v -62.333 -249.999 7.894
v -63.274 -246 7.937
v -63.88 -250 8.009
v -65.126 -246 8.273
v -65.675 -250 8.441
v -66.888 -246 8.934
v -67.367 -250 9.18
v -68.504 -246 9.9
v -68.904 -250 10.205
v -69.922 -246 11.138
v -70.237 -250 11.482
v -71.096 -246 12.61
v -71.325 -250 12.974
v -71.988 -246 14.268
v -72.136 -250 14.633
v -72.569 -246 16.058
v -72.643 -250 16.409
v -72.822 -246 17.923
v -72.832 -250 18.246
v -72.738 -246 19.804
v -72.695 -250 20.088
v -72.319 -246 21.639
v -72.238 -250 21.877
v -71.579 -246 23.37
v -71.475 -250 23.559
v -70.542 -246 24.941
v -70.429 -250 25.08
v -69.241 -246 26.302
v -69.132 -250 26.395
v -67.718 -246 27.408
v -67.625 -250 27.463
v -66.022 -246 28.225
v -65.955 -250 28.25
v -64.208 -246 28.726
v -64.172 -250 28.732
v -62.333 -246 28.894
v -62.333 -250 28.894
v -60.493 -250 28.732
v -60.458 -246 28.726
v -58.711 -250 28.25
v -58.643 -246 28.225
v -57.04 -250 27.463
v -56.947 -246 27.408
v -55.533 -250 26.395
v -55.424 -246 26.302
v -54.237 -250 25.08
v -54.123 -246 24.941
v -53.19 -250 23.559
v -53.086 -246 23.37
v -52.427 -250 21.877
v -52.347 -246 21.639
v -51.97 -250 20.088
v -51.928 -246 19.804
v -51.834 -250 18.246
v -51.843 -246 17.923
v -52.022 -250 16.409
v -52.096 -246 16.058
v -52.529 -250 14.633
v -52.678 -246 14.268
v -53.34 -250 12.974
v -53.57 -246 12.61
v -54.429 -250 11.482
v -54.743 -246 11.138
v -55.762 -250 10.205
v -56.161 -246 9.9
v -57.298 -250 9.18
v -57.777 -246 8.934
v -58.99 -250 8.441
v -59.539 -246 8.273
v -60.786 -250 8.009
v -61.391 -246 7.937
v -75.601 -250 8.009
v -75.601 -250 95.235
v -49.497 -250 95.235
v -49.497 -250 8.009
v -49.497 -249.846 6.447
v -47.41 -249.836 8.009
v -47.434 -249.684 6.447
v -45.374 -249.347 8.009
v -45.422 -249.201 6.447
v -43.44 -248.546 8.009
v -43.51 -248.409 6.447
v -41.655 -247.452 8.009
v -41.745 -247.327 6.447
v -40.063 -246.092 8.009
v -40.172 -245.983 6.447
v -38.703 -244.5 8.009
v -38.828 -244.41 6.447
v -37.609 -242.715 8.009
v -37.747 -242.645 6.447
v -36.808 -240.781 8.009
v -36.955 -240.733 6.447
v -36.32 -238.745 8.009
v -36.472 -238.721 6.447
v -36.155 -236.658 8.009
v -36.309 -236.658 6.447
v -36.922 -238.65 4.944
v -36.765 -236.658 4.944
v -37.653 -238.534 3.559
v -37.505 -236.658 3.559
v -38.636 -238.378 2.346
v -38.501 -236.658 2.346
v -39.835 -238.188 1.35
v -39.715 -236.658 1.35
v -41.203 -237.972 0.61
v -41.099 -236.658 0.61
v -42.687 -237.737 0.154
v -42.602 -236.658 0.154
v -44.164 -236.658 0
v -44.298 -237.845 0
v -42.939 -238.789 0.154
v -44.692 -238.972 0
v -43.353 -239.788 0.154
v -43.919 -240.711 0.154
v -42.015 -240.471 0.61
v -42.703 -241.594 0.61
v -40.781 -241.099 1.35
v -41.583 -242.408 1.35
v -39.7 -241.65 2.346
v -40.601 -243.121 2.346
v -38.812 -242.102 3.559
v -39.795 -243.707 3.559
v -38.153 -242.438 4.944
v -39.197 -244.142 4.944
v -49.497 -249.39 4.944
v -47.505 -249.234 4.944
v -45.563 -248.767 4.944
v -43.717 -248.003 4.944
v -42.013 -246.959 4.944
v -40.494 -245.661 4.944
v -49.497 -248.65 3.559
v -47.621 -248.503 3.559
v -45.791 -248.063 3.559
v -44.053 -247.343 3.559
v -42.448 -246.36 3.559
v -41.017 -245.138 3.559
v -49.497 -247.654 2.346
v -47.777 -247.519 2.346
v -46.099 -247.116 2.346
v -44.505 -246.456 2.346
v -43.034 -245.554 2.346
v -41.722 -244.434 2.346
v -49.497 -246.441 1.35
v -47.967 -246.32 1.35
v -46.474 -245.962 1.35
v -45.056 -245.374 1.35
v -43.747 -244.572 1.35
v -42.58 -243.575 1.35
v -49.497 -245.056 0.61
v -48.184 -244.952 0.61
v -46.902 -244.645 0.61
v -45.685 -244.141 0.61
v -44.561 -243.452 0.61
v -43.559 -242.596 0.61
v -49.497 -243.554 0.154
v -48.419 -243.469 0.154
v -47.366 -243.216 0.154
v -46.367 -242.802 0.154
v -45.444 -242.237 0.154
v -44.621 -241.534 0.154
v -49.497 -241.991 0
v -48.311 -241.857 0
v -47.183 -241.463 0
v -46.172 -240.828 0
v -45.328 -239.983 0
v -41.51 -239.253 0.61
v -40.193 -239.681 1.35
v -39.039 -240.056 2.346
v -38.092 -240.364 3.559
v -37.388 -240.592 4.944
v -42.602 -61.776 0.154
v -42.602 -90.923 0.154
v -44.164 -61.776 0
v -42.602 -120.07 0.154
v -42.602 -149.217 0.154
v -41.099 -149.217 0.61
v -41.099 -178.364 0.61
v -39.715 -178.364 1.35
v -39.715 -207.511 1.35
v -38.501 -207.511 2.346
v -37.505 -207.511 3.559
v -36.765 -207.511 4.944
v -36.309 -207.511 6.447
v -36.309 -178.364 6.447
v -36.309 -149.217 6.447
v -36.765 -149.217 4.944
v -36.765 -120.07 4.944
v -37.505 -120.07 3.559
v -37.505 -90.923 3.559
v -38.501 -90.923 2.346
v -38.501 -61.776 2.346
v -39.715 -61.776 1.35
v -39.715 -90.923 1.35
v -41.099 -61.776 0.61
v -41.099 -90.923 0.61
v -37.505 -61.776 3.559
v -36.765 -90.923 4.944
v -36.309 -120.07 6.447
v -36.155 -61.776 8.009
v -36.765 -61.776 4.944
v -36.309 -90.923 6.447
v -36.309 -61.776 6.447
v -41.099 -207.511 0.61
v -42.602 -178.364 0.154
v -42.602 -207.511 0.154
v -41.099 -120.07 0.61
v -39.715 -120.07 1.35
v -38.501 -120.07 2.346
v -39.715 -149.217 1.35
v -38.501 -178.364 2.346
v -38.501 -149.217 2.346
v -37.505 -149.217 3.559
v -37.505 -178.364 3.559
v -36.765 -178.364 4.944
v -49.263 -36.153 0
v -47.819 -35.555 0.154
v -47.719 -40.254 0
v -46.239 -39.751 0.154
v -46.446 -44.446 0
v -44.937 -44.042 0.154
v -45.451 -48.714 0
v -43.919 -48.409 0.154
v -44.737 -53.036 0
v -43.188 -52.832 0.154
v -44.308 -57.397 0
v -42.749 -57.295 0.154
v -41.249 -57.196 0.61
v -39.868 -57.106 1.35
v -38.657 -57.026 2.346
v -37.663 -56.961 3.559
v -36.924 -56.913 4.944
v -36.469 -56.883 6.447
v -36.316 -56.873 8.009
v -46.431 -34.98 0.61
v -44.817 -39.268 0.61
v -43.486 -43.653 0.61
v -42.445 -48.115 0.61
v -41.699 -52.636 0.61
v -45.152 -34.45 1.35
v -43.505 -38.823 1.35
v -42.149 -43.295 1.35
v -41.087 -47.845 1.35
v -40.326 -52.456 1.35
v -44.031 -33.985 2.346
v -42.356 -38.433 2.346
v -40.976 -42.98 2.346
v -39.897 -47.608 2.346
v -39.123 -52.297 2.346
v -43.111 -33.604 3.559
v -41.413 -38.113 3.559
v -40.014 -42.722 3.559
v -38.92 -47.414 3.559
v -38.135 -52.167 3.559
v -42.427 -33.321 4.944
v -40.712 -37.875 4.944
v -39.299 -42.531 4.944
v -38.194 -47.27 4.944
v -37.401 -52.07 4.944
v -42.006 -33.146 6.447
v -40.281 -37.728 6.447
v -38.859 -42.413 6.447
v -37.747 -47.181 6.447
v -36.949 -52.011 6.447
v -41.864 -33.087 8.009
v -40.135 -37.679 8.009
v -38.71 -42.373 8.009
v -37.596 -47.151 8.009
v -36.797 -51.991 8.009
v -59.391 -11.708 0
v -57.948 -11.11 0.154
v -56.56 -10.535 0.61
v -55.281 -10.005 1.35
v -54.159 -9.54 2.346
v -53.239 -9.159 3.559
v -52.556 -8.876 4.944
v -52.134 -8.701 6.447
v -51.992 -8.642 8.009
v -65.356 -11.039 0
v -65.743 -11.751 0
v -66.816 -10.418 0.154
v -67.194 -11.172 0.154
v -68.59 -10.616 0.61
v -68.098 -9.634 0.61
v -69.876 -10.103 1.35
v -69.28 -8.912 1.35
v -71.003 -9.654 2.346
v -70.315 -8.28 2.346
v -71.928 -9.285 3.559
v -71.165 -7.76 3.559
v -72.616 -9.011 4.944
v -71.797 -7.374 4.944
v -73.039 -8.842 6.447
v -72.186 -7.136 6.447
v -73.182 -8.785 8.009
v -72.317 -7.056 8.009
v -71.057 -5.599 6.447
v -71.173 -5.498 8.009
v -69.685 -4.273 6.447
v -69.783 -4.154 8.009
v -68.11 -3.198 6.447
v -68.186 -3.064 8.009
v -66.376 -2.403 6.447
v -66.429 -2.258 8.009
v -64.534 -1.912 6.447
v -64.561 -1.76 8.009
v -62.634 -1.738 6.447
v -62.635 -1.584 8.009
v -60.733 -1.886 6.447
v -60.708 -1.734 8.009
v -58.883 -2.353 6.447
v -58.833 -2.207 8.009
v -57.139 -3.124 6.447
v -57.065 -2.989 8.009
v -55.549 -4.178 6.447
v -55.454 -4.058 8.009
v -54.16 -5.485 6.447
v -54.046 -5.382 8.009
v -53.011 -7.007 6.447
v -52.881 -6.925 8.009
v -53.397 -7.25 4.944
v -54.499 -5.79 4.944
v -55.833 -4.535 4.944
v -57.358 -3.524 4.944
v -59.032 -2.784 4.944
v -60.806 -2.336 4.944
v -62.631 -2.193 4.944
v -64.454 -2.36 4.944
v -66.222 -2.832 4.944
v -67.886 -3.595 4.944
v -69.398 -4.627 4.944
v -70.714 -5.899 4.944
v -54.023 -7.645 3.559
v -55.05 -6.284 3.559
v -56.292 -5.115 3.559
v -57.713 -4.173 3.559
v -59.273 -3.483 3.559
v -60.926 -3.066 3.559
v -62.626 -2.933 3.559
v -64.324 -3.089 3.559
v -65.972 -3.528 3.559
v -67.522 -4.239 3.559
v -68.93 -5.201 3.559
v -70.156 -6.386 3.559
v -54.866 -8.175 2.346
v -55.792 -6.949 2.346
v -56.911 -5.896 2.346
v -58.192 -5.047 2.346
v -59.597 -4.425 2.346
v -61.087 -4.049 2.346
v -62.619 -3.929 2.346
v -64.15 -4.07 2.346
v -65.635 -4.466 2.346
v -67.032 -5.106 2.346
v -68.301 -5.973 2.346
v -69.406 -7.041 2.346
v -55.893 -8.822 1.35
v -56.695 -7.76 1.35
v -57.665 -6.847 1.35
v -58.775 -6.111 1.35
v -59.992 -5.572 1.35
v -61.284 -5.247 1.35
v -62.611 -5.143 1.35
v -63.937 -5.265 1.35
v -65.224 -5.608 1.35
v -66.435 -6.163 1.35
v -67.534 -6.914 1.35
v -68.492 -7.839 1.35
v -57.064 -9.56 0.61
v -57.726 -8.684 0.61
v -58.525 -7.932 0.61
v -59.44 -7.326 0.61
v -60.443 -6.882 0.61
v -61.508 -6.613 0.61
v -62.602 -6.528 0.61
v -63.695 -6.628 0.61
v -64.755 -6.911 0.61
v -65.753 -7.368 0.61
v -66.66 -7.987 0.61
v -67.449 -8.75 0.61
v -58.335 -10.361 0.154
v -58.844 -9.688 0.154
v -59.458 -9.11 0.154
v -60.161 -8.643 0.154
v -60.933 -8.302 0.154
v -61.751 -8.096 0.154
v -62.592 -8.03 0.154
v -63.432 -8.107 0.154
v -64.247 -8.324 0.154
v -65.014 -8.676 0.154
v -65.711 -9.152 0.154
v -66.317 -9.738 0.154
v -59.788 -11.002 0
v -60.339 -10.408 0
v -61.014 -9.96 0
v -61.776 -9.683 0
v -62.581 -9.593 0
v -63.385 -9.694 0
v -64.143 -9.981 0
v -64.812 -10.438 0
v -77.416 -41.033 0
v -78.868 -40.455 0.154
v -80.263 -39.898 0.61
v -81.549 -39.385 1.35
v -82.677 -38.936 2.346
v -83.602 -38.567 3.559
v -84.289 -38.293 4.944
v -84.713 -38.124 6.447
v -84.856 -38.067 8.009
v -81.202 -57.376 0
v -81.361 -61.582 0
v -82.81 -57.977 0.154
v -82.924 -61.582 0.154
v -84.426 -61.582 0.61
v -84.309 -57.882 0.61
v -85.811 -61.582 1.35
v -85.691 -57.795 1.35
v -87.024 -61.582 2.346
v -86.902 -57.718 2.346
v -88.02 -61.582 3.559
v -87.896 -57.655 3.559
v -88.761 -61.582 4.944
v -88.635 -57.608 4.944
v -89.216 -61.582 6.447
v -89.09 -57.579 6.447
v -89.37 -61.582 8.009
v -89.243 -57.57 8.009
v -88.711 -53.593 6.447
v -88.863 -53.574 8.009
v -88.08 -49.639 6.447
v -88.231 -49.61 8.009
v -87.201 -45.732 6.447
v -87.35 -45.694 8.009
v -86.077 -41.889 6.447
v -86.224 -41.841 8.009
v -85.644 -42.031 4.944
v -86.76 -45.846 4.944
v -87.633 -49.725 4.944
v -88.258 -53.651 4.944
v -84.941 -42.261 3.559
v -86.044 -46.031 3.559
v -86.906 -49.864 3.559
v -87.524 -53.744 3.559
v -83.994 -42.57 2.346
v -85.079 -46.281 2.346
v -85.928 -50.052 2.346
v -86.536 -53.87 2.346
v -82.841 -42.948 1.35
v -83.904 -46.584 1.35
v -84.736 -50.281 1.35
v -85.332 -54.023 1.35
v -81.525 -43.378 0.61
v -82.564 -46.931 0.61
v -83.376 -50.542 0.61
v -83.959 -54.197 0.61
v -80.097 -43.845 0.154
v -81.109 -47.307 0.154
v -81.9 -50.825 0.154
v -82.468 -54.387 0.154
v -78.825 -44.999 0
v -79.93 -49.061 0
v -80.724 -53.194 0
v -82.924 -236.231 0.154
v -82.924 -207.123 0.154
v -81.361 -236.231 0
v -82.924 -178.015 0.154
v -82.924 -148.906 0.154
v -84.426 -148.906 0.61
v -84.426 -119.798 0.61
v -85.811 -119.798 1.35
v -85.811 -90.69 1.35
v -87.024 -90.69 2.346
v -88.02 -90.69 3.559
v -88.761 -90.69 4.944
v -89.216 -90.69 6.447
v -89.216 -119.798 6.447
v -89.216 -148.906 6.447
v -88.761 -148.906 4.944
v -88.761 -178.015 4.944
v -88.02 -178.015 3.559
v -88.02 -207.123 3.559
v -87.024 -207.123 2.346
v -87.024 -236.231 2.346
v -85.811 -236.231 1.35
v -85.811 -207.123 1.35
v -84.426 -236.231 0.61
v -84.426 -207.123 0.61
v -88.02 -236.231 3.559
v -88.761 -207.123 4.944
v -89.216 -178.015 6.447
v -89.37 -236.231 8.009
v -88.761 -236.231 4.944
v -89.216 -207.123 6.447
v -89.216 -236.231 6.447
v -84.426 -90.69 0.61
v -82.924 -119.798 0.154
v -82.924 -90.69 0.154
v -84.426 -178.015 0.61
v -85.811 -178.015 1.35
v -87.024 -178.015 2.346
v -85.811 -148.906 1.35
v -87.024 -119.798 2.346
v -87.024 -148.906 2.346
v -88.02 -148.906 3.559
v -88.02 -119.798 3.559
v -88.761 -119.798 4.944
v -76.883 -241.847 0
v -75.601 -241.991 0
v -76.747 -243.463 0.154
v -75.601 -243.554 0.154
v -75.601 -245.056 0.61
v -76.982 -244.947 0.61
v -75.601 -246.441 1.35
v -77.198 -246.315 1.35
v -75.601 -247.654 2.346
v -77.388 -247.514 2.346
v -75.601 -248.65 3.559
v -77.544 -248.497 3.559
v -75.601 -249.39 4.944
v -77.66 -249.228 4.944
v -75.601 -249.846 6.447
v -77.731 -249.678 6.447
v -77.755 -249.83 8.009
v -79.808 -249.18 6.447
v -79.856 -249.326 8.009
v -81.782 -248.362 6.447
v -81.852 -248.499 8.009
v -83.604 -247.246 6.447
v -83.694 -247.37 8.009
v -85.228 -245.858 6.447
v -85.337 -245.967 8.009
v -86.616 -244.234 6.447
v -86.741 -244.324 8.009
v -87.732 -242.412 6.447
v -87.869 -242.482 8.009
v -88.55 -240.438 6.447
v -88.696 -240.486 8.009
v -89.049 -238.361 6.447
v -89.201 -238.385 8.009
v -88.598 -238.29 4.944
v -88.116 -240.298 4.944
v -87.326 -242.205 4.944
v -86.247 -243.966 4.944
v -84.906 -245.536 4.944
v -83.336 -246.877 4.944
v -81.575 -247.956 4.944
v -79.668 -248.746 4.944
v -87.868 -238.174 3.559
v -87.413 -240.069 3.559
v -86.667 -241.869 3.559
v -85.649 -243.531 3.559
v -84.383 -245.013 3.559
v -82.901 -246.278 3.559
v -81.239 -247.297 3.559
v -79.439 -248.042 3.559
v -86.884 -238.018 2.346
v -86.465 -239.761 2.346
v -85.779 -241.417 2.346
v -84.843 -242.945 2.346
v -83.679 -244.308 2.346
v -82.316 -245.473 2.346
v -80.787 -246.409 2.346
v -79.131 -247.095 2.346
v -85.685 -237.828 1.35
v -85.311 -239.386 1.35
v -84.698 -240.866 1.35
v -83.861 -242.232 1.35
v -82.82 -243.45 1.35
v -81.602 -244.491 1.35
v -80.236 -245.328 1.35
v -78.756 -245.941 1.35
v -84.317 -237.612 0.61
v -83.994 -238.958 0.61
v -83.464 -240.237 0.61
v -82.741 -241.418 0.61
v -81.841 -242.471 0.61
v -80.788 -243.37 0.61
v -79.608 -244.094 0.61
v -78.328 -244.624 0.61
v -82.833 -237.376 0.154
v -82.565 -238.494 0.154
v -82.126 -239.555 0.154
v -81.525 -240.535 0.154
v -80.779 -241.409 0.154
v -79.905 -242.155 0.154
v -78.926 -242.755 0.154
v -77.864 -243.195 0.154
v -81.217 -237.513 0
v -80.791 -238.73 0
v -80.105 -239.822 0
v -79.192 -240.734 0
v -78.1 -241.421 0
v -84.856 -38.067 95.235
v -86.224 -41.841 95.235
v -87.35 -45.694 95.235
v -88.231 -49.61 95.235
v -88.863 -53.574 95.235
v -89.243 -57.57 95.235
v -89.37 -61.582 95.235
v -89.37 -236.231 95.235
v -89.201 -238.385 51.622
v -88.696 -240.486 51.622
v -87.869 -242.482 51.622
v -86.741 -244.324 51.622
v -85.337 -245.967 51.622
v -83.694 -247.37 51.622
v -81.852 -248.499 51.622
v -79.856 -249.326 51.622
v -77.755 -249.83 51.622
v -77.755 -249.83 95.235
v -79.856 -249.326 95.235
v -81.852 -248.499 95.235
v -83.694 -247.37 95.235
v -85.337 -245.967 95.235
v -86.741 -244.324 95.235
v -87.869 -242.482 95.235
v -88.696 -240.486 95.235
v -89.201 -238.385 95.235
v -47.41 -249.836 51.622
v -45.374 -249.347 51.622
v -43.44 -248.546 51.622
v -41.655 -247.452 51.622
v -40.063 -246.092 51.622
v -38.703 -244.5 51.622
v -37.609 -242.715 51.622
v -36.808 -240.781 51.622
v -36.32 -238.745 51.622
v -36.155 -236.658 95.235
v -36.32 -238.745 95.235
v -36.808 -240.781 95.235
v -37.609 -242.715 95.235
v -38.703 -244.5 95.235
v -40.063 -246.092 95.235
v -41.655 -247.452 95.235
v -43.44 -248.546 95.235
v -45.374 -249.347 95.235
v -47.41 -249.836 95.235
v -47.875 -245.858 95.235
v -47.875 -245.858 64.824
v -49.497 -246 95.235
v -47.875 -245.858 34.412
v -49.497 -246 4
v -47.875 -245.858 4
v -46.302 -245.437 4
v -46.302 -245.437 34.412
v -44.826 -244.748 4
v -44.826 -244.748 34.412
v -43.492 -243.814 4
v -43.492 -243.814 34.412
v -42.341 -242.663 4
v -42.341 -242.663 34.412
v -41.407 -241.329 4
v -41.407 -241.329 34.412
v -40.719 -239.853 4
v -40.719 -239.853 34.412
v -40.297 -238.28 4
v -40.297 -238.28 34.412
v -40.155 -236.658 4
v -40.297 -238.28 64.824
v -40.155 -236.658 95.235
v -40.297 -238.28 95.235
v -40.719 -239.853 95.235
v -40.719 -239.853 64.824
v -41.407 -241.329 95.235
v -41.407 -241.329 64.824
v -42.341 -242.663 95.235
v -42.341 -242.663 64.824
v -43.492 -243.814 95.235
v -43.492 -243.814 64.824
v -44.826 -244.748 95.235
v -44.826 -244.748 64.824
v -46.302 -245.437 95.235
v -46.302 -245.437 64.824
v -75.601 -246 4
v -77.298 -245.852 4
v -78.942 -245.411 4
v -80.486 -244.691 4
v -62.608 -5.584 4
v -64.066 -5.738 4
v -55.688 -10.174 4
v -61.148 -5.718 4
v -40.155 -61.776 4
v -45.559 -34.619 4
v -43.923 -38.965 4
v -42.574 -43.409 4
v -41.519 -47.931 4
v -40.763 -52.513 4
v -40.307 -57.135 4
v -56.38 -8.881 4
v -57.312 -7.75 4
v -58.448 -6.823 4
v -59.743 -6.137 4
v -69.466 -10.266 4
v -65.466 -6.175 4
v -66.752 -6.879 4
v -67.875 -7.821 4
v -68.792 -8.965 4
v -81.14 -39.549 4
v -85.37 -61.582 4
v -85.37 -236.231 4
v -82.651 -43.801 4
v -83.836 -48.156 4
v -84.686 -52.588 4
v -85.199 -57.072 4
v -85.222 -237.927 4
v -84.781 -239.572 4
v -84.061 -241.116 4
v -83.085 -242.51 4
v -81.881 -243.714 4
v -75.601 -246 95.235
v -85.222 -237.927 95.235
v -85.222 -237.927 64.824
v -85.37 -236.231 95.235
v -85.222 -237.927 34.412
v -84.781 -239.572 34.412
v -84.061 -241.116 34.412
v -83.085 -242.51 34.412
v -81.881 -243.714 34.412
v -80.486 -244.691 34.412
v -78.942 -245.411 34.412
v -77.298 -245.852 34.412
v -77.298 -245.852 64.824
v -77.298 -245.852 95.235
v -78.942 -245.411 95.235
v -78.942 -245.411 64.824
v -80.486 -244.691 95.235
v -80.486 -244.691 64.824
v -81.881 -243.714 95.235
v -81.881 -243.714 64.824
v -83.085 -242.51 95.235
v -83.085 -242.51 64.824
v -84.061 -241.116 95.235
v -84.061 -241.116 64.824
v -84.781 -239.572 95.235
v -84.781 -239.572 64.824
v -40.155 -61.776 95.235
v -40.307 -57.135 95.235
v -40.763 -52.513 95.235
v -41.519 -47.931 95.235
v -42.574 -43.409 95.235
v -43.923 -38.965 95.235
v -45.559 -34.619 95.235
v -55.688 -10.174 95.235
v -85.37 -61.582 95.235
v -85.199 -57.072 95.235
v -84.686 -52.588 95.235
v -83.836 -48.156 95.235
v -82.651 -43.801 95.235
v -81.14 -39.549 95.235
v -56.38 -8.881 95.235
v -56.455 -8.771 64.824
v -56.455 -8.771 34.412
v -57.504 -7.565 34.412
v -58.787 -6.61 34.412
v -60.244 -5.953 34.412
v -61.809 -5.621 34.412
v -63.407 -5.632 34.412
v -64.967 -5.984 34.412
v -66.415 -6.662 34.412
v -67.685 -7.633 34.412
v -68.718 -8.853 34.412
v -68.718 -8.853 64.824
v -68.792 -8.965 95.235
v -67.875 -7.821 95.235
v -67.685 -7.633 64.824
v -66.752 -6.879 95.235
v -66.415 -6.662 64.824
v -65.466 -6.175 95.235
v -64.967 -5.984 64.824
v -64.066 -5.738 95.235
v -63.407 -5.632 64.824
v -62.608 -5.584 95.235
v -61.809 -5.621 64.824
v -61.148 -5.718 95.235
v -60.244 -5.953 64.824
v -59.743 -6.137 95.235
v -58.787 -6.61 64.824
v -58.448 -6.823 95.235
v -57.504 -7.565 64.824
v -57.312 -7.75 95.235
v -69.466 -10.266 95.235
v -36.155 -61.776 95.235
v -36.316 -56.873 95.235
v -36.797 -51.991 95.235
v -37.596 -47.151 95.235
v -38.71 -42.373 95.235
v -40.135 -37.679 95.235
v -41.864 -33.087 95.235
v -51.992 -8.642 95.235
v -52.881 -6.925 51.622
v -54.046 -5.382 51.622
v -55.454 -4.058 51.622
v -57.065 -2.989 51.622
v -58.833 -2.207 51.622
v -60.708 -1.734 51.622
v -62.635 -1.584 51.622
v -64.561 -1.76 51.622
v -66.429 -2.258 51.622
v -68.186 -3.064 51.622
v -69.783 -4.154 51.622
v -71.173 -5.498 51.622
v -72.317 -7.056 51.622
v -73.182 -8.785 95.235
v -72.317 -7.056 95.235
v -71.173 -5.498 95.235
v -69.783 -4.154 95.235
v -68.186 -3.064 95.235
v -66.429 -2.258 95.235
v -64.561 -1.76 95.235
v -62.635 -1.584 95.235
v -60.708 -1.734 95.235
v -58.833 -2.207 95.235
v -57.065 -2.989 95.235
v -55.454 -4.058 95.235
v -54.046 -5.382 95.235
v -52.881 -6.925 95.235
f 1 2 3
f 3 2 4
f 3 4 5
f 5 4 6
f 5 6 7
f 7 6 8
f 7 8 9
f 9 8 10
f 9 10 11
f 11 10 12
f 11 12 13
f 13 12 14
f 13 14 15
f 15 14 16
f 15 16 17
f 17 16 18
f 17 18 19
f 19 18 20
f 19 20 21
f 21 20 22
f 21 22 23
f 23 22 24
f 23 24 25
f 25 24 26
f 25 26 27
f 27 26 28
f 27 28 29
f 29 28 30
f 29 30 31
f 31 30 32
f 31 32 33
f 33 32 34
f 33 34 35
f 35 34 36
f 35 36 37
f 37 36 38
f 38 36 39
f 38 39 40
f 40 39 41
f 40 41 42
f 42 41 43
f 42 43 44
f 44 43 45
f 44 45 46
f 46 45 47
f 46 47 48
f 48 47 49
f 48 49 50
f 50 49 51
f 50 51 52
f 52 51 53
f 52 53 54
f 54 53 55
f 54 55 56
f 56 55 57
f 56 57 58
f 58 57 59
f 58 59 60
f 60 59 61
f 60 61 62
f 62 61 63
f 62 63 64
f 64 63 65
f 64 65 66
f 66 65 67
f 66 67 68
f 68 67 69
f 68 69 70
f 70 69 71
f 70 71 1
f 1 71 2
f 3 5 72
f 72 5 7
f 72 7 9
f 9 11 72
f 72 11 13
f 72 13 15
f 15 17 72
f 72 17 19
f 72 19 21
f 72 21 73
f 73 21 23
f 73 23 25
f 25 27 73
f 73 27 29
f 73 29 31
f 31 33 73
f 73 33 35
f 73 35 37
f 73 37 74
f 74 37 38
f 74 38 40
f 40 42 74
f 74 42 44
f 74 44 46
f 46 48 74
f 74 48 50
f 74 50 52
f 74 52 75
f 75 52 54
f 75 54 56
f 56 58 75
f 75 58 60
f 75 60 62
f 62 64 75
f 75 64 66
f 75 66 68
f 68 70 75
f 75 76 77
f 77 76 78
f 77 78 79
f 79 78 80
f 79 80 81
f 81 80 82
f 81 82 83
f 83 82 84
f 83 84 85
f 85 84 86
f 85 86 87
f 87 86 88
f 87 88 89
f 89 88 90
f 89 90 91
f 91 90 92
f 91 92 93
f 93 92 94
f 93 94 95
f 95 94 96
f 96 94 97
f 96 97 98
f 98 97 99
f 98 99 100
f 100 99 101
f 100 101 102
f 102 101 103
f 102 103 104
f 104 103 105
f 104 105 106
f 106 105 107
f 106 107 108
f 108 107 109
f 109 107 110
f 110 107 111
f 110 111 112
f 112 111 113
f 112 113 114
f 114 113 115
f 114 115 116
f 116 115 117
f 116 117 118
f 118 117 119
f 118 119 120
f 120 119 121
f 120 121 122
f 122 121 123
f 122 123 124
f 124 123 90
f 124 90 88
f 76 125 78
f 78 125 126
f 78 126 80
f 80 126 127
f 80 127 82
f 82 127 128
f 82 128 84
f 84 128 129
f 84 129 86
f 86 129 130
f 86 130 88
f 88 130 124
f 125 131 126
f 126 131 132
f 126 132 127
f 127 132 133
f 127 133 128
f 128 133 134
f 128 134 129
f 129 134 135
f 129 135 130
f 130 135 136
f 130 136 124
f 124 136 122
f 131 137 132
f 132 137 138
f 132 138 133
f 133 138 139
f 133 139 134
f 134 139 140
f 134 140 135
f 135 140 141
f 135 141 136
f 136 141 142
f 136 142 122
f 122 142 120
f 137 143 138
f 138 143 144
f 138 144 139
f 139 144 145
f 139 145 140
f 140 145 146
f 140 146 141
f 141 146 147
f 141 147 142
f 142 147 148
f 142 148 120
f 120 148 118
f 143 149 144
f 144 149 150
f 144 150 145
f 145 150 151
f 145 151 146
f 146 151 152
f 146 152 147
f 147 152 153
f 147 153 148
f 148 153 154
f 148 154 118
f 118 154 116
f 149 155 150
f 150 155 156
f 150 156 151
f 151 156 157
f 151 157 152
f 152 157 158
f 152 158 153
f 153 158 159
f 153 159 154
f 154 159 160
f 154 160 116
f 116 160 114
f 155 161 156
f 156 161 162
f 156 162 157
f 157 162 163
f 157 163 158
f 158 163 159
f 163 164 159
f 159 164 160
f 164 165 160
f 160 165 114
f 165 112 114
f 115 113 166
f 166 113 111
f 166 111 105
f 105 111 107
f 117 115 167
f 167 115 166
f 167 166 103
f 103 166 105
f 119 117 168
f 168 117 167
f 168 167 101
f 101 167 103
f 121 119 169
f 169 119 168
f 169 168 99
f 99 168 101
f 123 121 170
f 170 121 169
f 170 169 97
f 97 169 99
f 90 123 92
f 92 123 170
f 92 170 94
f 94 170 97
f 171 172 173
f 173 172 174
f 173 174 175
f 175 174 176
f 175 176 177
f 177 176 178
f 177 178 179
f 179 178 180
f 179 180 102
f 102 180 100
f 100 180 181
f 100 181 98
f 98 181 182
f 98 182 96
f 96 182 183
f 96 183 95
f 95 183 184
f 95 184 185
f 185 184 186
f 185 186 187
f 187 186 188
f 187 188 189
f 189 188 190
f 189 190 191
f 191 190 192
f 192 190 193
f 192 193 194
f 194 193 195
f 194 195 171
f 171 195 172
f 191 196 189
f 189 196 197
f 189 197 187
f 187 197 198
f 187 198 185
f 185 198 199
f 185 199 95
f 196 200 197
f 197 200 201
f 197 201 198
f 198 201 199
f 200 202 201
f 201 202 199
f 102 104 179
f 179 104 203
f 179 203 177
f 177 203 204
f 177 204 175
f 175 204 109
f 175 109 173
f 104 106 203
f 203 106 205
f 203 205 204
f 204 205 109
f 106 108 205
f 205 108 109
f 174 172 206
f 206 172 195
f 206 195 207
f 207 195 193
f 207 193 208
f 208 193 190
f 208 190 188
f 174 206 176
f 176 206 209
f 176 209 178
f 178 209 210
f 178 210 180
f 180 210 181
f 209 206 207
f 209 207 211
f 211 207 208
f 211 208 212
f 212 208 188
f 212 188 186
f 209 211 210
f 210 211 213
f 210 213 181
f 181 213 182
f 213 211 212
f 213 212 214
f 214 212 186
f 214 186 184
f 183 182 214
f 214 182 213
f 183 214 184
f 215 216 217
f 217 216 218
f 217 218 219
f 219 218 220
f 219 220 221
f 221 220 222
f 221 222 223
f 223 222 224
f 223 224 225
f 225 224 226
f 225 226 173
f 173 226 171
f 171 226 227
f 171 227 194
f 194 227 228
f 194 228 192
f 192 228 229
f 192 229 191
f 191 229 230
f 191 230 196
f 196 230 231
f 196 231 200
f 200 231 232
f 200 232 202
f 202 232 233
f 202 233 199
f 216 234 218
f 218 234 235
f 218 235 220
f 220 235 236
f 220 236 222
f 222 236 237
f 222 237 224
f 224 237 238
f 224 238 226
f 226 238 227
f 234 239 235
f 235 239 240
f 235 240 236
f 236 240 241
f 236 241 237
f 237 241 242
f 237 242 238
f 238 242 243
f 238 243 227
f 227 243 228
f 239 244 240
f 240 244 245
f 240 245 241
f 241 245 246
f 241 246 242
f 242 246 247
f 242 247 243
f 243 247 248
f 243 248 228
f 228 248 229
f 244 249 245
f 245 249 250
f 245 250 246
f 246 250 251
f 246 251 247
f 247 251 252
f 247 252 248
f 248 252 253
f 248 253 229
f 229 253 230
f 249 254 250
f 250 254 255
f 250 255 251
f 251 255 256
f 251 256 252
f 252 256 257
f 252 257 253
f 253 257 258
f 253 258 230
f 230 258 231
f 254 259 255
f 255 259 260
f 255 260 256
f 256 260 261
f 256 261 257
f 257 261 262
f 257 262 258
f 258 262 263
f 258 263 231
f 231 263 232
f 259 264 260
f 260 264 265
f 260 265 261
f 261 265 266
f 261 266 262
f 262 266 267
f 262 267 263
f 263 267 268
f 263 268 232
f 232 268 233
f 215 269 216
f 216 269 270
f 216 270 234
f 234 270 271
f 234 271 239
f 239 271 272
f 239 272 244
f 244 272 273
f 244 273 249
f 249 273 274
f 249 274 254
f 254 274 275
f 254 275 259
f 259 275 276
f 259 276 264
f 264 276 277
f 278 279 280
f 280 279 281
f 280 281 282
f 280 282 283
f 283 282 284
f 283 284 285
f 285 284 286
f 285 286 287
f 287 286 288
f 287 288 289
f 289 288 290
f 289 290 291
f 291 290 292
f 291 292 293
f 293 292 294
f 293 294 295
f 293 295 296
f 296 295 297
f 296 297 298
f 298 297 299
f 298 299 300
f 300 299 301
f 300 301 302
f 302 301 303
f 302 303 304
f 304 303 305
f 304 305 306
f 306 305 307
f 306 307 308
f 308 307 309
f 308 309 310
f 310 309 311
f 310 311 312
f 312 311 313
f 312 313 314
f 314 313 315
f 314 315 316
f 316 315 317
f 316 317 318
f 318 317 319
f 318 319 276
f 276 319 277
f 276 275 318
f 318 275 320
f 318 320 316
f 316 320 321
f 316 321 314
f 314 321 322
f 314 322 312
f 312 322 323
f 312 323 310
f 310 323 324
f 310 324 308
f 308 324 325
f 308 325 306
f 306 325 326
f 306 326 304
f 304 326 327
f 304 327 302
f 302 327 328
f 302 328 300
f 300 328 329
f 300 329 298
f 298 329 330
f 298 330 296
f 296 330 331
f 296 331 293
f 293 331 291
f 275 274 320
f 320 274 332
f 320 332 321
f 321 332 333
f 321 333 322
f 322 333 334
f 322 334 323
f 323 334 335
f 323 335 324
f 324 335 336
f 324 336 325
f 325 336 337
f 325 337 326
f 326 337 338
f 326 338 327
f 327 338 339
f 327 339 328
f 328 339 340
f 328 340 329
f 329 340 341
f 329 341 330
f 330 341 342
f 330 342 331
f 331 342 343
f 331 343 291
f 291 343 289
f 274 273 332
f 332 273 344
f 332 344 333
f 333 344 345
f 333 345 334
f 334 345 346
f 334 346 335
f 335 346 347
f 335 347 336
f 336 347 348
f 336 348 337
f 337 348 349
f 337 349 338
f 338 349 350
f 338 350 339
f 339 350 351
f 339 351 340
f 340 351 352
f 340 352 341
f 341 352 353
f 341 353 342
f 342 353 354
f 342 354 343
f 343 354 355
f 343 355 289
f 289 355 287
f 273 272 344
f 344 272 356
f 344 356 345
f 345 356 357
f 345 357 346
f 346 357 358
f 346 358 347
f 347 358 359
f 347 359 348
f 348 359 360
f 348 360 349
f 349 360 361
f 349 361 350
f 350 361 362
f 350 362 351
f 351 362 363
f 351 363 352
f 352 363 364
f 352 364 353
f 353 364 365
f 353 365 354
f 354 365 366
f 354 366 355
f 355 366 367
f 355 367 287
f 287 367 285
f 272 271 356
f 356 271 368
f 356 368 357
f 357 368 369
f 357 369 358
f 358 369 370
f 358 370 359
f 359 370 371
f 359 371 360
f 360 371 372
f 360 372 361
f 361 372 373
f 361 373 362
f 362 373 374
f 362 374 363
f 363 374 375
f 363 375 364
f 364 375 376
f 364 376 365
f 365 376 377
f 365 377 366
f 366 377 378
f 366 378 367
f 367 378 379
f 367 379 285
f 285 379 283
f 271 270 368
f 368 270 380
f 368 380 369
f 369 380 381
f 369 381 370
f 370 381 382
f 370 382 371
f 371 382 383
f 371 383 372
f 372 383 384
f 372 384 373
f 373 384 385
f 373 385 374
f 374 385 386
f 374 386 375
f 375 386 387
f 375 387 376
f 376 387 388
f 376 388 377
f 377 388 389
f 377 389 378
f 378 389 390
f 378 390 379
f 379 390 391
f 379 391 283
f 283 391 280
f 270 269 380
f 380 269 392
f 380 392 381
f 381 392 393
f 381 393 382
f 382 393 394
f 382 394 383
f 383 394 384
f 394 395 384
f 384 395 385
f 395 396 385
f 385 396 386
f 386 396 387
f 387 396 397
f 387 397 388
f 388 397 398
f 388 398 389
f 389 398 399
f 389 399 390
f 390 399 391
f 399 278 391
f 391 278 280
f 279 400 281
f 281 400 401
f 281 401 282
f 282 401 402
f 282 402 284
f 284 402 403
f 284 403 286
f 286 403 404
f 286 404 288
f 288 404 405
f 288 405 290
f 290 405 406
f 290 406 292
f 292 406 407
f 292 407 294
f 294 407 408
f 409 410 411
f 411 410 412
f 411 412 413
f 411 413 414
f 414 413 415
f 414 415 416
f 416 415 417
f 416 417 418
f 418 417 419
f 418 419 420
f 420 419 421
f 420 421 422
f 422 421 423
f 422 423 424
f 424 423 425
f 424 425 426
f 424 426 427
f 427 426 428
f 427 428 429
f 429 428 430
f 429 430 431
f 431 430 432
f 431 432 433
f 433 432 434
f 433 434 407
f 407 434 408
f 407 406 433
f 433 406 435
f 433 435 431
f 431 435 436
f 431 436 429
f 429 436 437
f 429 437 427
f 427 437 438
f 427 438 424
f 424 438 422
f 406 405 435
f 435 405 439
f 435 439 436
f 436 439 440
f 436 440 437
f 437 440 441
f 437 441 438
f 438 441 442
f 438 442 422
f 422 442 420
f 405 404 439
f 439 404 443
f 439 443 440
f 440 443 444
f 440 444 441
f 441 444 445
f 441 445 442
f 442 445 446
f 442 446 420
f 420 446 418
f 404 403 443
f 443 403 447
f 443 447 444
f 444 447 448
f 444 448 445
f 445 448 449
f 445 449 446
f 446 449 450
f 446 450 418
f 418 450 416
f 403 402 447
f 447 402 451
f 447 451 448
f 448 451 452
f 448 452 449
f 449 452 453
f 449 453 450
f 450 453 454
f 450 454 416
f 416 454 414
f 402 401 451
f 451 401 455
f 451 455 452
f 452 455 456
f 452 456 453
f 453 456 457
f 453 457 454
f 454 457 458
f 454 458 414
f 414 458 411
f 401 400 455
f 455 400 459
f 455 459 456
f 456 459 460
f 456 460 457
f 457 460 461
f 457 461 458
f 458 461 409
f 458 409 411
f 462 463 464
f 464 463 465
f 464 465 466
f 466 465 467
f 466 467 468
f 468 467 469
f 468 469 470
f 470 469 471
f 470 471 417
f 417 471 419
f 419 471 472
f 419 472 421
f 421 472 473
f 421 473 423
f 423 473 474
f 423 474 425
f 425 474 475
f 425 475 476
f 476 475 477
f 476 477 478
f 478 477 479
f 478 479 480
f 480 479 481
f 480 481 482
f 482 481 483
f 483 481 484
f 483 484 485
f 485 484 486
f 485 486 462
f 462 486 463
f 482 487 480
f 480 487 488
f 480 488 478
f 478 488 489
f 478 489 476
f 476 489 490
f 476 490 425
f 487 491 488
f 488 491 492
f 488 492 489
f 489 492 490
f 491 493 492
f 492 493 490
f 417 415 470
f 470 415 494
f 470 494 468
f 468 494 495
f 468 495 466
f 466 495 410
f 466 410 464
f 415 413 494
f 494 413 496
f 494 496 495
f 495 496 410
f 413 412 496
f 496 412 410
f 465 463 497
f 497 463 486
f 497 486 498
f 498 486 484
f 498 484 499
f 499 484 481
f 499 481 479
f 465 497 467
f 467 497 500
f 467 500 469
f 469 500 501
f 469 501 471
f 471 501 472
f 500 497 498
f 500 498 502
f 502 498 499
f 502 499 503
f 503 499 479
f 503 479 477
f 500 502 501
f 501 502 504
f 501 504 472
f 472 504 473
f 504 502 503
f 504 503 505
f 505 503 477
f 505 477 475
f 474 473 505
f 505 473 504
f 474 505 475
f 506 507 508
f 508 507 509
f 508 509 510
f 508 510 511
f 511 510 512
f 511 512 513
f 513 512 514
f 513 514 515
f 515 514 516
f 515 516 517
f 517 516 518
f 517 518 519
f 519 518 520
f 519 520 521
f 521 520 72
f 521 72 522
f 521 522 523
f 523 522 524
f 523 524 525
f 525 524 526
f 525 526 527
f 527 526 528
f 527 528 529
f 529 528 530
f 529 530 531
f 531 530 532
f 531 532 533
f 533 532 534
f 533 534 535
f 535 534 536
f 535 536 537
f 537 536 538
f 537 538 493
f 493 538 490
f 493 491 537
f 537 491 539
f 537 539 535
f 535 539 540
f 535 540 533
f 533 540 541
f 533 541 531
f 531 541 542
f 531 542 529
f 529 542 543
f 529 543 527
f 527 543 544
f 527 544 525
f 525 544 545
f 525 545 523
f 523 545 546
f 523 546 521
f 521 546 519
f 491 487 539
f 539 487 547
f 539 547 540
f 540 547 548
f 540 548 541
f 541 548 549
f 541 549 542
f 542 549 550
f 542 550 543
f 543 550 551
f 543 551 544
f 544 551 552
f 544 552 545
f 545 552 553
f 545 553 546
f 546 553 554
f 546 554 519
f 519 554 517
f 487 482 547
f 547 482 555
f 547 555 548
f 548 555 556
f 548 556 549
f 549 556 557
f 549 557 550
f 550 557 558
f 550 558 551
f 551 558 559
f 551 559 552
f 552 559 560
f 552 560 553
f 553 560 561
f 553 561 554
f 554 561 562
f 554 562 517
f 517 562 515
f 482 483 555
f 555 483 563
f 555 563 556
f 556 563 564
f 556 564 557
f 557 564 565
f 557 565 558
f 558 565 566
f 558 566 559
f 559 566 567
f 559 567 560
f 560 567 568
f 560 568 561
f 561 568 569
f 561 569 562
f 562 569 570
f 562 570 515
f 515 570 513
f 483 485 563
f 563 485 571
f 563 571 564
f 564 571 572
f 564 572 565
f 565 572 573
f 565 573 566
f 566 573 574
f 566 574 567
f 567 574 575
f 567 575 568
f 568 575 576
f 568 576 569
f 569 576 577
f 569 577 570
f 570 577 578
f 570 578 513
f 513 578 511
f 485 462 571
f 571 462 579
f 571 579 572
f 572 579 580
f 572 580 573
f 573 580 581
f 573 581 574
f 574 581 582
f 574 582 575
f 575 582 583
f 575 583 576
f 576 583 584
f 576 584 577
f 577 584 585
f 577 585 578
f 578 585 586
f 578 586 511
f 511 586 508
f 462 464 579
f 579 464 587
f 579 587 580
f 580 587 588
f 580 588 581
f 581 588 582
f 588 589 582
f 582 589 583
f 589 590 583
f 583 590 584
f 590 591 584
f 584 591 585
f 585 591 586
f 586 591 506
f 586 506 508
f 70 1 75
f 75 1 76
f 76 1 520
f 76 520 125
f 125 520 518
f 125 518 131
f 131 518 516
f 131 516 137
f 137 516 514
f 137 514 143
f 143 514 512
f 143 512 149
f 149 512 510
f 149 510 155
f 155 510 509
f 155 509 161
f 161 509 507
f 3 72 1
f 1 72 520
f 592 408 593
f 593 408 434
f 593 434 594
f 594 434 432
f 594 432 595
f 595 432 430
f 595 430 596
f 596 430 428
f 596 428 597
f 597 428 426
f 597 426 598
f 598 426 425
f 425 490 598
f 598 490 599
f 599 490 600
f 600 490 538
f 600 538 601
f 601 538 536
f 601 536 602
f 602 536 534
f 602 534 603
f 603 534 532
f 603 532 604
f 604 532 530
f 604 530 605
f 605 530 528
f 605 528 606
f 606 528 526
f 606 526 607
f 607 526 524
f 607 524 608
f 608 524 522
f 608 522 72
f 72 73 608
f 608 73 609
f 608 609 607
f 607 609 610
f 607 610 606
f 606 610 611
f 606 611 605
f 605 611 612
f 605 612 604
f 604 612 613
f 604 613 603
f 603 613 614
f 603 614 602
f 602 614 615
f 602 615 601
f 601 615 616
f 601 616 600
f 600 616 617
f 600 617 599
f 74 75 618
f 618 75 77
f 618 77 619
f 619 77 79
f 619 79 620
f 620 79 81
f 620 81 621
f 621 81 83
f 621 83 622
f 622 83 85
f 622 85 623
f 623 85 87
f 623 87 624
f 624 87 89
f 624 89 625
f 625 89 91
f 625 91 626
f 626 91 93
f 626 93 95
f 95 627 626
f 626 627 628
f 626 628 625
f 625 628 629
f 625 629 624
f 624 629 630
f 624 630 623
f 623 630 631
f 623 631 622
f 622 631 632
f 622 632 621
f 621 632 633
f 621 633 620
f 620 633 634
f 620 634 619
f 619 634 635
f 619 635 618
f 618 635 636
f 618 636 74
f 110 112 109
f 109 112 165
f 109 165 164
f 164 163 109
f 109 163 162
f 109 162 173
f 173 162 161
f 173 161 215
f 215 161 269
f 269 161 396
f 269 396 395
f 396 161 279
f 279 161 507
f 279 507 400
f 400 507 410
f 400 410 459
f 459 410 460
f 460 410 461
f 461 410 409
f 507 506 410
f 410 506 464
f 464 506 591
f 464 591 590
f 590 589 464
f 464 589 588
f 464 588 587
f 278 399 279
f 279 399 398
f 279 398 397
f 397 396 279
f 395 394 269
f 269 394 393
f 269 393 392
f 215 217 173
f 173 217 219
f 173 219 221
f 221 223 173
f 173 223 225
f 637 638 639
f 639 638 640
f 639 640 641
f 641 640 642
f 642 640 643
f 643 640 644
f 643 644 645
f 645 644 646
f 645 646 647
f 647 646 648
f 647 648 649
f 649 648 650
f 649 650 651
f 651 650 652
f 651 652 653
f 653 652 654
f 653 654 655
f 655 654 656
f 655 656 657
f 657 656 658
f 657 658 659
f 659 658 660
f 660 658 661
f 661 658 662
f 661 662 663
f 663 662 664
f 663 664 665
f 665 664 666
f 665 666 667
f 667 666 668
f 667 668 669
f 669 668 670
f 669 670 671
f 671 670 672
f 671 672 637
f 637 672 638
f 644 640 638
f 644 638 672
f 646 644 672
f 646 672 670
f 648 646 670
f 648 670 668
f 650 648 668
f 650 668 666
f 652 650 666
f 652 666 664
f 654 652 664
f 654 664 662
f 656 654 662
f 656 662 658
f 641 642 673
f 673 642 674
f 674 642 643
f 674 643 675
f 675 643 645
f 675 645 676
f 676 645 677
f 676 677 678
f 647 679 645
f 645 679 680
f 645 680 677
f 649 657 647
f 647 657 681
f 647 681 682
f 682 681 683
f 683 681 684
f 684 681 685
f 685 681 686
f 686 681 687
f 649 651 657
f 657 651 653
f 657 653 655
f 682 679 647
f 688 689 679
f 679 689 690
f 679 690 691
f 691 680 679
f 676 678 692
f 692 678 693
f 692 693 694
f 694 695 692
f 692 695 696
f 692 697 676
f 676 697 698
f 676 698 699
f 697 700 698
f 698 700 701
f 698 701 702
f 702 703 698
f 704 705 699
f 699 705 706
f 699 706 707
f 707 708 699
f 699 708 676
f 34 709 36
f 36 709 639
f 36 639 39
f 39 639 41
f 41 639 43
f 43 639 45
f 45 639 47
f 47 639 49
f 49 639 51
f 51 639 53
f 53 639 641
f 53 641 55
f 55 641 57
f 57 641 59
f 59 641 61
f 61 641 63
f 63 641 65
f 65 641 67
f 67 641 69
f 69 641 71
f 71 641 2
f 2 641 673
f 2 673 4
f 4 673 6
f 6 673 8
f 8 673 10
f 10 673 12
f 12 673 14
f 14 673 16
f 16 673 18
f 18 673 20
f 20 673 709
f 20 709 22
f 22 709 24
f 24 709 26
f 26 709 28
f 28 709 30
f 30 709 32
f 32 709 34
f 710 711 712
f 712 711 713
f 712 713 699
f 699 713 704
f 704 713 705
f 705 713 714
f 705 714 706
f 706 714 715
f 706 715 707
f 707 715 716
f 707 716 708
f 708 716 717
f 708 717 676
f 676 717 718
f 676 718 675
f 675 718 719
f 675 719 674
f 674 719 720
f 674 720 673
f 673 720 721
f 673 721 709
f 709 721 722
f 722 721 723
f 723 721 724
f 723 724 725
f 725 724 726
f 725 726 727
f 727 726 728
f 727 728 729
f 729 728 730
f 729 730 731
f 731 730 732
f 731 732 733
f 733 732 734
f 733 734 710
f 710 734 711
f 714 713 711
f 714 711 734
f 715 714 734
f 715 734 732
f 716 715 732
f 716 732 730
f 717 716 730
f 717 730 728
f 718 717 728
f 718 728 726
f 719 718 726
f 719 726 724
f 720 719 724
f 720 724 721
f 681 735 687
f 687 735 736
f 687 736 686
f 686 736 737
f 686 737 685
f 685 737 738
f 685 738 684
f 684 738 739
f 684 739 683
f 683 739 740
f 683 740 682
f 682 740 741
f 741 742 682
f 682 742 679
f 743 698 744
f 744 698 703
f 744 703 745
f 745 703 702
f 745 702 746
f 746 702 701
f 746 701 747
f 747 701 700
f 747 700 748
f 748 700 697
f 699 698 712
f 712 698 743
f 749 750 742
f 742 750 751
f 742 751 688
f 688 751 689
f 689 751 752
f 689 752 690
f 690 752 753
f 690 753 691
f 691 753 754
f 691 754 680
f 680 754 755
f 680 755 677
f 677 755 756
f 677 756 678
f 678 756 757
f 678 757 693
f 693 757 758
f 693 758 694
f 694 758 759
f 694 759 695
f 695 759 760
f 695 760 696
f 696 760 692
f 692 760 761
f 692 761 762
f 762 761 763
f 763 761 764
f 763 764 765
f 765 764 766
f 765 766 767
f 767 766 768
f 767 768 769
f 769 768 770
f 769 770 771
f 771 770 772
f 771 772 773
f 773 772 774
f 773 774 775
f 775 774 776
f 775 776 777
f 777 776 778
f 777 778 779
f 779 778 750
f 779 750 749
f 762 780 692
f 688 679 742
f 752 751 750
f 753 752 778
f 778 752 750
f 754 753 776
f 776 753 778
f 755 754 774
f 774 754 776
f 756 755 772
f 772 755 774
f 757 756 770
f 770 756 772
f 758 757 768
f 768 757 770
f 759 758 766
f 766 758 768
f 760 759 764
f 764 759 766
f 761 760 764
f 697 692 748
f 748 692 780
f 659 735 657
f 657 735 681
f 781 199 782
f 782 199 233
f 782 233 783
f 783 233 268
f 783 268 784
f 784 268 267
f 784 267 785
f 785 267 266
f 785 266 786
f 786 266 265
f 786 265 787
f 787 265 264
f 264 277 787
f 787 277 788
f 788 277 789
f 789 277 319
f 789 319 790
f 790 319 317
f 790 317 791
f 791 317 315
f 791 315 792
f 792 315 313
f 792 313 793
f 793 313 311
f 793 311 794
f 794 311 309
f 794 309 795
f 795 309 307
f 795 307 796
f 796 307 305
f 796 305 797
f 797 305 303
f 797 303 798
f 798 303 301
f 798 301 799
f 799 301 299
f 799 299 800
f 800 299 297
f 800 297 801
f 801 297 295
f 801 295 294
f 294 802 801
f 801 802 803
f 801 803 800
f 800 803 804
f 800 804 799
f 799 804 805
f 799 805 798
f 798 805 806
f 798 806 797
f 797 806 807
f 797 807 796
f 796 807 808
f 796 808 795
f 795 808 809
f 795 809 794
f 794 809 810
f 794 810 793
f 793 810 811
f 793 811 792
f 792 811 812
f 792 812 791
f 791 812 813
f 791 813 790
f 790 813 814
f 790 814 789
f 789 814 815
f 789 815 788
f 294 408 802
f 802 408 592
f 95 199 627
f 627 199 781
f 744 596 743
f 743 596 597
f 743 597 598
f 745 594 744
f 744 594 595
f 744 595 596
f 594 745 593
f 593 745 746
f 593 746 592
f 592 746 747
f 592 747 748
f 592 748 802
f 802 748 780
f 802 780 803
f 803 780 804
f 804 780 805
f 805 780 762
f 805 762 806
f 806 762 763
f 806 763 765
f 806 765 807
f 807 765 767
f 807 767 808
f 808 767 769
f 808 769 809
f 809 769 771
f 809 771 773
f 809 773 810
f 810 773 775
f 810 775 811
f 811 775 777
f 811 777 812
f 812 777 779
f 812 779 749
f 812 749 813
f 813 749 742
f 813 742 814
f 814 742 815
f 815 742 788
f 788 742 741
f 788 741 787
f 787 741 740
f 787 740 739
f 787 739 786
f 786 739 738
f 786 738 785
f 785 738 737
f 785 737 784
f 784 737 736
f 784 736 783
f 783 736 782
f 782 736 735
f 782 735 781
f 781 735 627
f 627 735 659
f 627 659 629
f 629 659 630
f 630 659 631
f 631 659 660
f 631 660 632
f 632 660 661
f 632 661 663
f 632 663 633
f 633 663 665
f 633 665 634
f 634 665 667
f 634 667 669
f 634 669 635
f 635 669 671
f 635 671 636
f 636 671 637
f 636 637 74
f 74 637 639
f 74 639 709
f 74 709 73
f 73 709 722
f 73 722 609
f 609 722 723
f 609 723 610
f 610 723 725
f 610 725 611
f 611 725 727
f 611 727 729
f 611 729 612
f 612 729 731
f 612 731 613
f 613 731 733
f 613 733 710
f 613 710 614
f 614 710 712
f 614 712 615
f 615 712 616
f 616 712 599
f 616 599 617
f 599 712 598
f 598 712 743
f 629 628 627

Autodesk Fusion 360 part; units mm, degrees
sketch "Sketch1" plane through (0, 0, 0) normal (0, 0, 1) x (1, 0, 0)
  line L0 (-36.1553, -250) -> (-89.3702, -250)
  line L1 (-89.3702, -250) -> (-89.3702, 17.3508)
  line L2 (-89.3702, 17.3508) -> (-36.1553, 17.3508)
  line L3 (-36.1553, 17.3508) -> (-36.1553, -250)
extrude "Extrude1" add sketch "Sketch1" along normal blind 95.2353
sketch "Sketch2" plane through (0, 0, 95.2353) normal (0, 0, 1) x (-1, 0, 0)
  line L0 (36.1553, -17.3508) -> (89.3702, -17.3508)
  line L1 (89.3702, -17.3508) -> (89.3702, 250)
  line L2 (89.3702, 250) -> (36.1553, 250)
  line L3 (36.1553, 250) -> (36.1553, -17.3508)
  line L4 (89.3702, 49.3912) -> (62.7627, -17.3508)
  line L5 (62.7627, -17.3508) -> (36.1553, 46.8639)
extrude "Extrude2" cut sketch "Sketch2" against normal blind 218.776 contours L0 L3 L5 | L0 L1 L4
fillet "Fillet1" radius 11.437 1 edges at (-62.7627, 17.3508, 47.6177)
fillet "Fillet2" radius 63.498 1 edges at (-89.3702, -49.3912, 47.6177)
fillet "Fillet3" radius 74.946 1 edges at (-36.1553, -46.8639, 47.6177)
fillet "Fillet4" radius 13.769 1 edges at (-89.3702, -250, 47.6177)
fillet "Fillet5" radius 13.342 1 edges at (-36.1553, -250, 47.6177)
shell "Shell1" thickness 4 removed faces 1 at (-53.8936, -178.2217, 95.2353)
fillet "Fillet8" radius 8.009 1 faces at (-53.8936, -178.2217, 0)
hole "Hole2" at (-62.3327, -250, 18.3944) direction (0, 1, 0) diameter 21 depth 30 tip angle 118
